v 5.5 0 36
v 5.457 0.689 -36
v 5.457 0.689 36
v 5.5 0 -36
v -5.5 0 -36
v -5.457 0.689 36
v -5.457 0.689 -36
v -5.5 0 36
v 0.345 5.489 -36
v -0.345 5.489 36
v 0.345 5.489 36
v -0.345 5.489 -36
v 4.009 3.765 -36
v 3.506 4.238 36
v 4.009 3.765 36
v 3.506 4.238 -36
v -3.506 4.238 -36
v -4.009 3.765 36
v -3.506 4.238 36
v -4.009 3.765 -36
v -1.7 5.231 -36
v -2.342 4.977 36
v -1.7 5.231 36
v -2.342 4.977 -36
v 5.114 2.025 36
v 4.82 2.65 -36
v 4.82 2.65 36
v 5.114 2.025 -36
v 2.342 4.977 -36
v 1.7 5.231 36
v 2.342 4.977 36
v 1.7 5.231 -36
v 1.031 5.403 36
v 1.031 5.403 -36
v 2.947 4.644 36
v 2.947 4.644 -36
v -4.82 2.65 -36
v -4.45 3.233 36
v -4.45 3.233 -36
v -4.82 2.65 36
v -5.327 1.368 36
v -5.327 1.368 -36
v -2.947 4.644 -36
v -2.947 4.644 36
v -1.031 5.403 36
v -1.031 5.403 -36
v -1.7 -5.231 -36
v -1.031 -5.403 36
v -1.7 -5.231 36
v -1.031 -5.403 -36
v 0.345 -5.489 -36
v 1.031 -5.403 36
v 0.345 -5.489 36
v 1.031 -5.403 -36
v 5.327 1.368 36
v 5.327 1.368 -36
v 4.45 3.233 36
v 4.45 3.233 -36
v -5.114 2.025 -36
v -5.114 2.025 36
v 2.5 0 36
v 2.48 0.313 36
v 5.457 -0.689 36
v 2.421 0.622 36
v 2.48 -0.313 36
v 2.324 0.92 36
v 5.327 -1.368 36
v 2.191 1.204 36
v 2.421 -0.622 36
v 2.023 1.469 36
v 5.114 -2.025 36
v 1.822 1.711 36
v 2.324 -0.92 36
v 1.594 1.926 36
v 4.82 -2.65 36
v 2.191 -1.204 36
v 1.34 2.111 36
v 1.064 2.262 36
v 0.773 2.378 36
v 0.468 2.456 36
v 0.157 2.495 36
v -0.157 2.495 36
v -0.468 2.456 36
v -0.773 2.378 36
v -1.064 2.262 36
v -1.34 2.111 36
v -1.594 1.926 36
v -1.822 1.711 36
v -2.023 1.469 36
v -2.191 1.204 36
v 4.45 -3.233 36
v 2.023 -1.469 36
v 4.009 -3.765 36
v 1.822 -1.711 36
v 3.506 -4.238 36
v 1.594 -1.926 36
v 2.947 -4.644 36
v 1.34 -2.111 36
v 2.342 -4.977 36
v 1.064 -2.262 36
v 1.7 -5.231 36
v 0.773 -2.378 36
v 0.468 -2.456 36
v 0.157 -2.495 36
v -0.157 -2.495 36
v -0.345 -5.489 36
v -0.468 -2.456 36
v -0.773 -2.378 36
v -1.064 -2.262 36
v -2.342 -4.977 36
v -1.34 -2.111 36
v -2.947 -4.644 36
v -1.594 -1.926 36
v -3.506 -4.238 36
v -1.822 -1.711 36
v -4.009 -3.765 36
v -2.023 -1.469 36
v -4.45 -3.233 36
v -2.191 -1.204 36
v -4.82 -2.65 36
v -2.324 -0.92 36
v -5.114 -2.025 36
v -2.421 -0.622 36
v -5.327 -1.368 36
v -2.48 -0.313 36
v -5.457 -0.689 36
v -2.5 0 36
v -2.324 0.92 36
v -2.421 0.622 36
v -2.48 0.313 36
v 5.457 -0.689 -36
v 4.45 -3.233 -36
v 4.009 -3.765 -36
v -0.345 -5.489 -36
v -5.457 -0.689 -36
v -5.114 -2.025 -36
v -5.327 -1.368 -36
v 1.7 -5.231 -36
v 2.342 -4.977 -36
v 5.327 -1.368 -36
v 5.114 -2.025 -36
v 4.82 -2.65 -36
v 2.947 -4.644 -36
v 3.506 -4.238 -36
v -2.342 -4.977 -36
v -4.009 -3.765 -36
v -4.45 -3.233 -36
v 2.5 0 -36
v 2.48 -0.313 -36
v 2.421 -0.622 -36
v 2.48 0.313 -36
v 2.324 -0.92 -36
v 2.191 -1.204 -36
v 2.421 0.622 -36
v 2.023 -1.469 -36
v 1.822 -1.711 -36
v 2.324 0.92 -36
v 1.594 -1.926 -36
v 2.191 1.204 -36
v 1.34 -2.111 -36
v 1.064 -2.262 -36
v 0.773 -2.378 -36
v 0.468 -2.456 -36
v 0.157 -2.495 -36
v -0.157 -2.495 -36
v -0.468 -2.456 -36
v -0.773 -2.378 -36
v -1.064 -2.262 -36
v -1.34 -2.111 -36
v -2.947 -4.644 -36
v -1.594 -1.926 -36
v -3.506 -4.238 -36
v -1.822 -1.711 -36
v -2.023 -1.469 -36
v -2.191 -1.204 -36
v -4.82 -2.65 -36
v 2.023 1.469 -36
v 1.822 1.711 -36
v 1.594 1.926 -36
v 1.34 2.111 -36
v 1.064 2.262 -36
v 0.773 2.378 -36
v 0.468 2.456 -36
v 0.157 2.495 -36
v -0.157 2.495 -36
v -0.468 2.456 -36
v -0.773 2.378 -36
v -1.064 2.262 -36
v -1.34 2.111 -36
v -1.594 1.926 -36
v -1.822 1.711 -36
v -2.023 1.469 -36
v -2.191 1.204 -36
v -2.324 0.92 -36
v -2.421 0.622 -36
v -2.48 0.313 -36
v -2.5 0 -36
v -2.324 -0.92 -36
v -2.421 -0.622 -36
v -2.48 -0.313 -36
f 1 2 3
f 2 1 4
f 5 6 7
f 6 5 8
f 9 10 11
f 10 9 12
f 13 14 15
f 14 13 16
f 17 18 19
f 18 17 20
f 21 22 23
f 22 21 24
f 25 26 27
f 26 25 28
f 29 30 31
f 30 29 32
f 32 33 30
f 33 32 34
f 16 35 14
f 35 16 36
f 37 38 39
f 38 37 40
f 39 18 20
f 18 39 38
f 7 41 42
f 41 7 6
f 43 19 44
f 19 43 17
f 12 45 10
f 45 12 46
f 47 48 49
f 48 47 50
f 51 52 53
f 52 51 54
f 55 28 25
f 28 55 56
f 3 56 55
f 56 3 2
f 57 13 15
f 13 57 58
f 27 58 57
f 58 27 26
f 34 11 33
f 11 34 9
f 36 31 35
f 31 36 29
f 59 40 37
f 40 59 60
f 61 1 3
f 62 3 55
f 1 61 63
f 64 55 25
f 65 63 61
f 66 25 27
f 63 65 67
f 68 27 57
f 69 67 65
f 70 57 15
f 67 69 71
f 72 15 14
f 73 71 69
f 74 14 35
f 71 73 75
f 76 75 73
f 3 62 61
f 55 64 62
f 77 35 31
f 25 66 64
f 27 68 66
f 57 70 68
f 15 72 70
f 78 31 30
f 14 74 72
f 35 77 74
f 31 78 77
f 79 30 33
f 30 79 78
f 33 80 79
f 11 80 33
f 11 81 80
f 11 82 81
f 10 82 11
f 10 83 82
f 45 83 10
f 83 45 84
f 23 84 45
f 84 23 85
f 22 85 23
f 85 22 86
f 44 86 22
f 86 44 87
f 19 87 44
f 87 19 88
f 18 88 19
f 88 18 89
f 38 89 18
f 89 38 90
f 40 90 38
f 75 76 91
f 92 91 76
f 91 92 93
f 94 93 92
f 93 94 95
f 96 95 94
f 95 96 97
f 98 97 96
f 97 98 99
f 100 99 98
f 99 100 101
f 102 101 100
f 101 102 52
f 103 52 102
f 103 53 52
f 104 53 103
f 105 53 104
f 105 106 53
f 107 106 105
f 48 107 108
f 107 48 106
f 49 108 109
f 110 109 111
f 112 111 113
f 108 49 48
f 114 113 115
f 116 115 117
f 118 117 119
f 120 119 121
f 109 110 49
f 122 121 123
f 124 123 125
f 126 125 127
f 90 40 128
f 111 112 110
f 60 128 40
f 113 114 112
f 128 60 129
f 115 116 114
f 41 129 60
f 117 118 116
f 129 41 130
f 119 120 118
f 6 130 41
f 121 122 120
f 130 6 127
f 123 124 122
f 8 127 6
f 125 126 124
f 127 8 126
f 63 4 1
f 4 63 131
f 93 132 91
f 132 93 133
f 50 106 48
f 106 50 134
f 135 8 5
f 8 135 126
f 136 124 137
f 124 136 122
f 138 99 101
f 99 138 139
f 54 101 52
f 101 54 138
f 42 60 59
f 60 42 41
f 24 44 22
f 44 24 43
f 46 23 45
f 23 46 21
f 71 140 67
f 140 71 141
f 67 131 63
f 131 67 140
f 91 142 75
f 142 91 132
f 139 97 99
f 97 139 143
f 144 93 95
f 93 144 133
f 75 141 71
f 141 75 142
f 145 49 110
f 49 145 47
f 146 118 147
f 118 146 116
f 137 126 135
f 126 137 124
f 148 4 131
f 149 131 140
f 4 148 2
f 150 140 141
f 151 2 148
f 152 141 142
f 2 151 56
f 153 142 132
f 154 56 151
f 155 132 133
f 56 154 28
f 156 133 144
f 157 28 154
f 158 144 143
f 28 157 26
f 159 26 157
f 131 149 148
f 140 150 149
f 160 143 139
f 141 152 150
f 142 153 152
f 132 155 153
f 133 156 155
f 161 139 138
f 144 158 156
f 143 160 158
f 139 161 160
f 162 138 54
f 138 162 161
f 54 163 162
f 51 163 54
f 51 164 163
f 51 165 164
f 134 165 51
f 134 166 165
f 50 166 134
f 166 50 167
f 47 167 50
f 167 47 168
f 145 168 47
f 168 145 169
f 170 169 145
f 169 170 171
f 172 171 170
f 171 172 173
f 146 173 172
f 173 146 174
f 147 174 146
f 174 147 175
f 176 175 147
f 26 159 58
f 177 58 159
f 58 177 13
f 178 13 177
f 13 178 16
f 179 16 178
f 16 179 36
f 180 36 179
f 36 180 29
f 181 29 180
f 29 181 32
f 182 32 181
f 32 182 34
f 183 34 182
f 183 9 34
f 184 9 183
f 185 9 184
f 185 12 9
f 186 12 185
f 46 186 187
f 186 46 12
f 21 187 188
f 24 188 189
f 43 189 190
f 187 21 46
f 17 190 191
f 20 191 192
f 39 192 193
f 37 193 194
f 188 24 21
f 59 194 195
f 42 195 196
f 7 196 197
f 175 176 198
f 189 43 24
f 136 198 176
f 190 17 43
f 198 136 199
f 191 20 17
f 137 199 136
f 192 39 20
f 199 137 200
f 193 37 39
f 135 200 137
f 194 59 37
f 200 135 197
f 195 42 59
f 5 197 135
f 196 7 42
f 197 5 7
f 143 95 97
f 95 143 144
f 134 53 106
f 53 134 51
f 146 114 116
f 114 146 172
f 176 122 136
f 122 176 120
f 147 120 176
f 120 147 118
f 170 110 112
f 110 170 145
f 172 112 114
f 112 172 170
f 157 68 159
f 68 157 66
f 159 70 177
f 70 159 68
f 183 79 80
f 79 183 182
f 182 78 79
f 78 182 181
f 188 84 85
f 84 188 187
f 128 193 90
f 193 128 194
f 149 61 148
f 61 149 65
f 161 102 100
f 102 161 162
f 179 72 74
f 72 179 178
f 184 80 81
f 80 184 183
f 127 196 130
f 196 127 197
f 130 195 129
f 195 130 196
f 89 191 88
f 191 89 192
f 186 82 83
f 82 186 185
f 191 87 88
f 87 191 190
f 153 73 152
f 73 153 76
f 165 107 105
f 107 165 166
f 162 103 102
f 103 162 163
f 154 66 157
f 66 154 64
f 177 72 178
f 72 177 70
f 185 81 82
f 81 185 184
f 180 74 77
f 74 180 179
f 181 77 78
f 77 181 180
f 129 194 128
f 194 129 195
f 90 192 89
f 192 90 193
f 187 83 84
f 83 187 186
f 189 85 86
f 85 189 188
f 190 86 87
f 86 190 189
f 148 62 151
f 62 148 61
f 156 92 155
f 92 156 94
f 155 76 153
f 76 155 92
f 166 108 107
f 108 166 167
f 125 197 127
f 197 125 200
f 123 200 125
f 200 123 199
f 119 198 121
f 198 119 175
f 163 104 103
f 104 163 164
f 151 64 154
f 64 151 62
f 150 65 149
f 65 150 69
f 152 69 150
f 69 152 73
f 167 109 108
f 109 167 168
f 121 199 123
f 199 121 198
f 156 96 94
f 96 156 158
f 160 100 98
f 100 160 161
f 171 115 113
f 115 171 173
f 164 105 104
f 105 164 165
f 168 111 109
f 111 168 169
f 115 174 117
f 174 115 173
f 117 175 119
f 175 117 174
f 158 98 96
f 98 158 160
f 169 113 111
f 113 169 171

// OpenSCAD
$fn = 50;


difference() {
	union() {
		translate(v = [0, 0, -36.0000000000]) {
			cylinder(h = 72, r = 5.5000000000);
		}
	}
	union() {
		translate(v = [0, 0, -100.0000000000]) {
			cylinder(h = 200, r = 2.5000000000);
		}
	}
}
